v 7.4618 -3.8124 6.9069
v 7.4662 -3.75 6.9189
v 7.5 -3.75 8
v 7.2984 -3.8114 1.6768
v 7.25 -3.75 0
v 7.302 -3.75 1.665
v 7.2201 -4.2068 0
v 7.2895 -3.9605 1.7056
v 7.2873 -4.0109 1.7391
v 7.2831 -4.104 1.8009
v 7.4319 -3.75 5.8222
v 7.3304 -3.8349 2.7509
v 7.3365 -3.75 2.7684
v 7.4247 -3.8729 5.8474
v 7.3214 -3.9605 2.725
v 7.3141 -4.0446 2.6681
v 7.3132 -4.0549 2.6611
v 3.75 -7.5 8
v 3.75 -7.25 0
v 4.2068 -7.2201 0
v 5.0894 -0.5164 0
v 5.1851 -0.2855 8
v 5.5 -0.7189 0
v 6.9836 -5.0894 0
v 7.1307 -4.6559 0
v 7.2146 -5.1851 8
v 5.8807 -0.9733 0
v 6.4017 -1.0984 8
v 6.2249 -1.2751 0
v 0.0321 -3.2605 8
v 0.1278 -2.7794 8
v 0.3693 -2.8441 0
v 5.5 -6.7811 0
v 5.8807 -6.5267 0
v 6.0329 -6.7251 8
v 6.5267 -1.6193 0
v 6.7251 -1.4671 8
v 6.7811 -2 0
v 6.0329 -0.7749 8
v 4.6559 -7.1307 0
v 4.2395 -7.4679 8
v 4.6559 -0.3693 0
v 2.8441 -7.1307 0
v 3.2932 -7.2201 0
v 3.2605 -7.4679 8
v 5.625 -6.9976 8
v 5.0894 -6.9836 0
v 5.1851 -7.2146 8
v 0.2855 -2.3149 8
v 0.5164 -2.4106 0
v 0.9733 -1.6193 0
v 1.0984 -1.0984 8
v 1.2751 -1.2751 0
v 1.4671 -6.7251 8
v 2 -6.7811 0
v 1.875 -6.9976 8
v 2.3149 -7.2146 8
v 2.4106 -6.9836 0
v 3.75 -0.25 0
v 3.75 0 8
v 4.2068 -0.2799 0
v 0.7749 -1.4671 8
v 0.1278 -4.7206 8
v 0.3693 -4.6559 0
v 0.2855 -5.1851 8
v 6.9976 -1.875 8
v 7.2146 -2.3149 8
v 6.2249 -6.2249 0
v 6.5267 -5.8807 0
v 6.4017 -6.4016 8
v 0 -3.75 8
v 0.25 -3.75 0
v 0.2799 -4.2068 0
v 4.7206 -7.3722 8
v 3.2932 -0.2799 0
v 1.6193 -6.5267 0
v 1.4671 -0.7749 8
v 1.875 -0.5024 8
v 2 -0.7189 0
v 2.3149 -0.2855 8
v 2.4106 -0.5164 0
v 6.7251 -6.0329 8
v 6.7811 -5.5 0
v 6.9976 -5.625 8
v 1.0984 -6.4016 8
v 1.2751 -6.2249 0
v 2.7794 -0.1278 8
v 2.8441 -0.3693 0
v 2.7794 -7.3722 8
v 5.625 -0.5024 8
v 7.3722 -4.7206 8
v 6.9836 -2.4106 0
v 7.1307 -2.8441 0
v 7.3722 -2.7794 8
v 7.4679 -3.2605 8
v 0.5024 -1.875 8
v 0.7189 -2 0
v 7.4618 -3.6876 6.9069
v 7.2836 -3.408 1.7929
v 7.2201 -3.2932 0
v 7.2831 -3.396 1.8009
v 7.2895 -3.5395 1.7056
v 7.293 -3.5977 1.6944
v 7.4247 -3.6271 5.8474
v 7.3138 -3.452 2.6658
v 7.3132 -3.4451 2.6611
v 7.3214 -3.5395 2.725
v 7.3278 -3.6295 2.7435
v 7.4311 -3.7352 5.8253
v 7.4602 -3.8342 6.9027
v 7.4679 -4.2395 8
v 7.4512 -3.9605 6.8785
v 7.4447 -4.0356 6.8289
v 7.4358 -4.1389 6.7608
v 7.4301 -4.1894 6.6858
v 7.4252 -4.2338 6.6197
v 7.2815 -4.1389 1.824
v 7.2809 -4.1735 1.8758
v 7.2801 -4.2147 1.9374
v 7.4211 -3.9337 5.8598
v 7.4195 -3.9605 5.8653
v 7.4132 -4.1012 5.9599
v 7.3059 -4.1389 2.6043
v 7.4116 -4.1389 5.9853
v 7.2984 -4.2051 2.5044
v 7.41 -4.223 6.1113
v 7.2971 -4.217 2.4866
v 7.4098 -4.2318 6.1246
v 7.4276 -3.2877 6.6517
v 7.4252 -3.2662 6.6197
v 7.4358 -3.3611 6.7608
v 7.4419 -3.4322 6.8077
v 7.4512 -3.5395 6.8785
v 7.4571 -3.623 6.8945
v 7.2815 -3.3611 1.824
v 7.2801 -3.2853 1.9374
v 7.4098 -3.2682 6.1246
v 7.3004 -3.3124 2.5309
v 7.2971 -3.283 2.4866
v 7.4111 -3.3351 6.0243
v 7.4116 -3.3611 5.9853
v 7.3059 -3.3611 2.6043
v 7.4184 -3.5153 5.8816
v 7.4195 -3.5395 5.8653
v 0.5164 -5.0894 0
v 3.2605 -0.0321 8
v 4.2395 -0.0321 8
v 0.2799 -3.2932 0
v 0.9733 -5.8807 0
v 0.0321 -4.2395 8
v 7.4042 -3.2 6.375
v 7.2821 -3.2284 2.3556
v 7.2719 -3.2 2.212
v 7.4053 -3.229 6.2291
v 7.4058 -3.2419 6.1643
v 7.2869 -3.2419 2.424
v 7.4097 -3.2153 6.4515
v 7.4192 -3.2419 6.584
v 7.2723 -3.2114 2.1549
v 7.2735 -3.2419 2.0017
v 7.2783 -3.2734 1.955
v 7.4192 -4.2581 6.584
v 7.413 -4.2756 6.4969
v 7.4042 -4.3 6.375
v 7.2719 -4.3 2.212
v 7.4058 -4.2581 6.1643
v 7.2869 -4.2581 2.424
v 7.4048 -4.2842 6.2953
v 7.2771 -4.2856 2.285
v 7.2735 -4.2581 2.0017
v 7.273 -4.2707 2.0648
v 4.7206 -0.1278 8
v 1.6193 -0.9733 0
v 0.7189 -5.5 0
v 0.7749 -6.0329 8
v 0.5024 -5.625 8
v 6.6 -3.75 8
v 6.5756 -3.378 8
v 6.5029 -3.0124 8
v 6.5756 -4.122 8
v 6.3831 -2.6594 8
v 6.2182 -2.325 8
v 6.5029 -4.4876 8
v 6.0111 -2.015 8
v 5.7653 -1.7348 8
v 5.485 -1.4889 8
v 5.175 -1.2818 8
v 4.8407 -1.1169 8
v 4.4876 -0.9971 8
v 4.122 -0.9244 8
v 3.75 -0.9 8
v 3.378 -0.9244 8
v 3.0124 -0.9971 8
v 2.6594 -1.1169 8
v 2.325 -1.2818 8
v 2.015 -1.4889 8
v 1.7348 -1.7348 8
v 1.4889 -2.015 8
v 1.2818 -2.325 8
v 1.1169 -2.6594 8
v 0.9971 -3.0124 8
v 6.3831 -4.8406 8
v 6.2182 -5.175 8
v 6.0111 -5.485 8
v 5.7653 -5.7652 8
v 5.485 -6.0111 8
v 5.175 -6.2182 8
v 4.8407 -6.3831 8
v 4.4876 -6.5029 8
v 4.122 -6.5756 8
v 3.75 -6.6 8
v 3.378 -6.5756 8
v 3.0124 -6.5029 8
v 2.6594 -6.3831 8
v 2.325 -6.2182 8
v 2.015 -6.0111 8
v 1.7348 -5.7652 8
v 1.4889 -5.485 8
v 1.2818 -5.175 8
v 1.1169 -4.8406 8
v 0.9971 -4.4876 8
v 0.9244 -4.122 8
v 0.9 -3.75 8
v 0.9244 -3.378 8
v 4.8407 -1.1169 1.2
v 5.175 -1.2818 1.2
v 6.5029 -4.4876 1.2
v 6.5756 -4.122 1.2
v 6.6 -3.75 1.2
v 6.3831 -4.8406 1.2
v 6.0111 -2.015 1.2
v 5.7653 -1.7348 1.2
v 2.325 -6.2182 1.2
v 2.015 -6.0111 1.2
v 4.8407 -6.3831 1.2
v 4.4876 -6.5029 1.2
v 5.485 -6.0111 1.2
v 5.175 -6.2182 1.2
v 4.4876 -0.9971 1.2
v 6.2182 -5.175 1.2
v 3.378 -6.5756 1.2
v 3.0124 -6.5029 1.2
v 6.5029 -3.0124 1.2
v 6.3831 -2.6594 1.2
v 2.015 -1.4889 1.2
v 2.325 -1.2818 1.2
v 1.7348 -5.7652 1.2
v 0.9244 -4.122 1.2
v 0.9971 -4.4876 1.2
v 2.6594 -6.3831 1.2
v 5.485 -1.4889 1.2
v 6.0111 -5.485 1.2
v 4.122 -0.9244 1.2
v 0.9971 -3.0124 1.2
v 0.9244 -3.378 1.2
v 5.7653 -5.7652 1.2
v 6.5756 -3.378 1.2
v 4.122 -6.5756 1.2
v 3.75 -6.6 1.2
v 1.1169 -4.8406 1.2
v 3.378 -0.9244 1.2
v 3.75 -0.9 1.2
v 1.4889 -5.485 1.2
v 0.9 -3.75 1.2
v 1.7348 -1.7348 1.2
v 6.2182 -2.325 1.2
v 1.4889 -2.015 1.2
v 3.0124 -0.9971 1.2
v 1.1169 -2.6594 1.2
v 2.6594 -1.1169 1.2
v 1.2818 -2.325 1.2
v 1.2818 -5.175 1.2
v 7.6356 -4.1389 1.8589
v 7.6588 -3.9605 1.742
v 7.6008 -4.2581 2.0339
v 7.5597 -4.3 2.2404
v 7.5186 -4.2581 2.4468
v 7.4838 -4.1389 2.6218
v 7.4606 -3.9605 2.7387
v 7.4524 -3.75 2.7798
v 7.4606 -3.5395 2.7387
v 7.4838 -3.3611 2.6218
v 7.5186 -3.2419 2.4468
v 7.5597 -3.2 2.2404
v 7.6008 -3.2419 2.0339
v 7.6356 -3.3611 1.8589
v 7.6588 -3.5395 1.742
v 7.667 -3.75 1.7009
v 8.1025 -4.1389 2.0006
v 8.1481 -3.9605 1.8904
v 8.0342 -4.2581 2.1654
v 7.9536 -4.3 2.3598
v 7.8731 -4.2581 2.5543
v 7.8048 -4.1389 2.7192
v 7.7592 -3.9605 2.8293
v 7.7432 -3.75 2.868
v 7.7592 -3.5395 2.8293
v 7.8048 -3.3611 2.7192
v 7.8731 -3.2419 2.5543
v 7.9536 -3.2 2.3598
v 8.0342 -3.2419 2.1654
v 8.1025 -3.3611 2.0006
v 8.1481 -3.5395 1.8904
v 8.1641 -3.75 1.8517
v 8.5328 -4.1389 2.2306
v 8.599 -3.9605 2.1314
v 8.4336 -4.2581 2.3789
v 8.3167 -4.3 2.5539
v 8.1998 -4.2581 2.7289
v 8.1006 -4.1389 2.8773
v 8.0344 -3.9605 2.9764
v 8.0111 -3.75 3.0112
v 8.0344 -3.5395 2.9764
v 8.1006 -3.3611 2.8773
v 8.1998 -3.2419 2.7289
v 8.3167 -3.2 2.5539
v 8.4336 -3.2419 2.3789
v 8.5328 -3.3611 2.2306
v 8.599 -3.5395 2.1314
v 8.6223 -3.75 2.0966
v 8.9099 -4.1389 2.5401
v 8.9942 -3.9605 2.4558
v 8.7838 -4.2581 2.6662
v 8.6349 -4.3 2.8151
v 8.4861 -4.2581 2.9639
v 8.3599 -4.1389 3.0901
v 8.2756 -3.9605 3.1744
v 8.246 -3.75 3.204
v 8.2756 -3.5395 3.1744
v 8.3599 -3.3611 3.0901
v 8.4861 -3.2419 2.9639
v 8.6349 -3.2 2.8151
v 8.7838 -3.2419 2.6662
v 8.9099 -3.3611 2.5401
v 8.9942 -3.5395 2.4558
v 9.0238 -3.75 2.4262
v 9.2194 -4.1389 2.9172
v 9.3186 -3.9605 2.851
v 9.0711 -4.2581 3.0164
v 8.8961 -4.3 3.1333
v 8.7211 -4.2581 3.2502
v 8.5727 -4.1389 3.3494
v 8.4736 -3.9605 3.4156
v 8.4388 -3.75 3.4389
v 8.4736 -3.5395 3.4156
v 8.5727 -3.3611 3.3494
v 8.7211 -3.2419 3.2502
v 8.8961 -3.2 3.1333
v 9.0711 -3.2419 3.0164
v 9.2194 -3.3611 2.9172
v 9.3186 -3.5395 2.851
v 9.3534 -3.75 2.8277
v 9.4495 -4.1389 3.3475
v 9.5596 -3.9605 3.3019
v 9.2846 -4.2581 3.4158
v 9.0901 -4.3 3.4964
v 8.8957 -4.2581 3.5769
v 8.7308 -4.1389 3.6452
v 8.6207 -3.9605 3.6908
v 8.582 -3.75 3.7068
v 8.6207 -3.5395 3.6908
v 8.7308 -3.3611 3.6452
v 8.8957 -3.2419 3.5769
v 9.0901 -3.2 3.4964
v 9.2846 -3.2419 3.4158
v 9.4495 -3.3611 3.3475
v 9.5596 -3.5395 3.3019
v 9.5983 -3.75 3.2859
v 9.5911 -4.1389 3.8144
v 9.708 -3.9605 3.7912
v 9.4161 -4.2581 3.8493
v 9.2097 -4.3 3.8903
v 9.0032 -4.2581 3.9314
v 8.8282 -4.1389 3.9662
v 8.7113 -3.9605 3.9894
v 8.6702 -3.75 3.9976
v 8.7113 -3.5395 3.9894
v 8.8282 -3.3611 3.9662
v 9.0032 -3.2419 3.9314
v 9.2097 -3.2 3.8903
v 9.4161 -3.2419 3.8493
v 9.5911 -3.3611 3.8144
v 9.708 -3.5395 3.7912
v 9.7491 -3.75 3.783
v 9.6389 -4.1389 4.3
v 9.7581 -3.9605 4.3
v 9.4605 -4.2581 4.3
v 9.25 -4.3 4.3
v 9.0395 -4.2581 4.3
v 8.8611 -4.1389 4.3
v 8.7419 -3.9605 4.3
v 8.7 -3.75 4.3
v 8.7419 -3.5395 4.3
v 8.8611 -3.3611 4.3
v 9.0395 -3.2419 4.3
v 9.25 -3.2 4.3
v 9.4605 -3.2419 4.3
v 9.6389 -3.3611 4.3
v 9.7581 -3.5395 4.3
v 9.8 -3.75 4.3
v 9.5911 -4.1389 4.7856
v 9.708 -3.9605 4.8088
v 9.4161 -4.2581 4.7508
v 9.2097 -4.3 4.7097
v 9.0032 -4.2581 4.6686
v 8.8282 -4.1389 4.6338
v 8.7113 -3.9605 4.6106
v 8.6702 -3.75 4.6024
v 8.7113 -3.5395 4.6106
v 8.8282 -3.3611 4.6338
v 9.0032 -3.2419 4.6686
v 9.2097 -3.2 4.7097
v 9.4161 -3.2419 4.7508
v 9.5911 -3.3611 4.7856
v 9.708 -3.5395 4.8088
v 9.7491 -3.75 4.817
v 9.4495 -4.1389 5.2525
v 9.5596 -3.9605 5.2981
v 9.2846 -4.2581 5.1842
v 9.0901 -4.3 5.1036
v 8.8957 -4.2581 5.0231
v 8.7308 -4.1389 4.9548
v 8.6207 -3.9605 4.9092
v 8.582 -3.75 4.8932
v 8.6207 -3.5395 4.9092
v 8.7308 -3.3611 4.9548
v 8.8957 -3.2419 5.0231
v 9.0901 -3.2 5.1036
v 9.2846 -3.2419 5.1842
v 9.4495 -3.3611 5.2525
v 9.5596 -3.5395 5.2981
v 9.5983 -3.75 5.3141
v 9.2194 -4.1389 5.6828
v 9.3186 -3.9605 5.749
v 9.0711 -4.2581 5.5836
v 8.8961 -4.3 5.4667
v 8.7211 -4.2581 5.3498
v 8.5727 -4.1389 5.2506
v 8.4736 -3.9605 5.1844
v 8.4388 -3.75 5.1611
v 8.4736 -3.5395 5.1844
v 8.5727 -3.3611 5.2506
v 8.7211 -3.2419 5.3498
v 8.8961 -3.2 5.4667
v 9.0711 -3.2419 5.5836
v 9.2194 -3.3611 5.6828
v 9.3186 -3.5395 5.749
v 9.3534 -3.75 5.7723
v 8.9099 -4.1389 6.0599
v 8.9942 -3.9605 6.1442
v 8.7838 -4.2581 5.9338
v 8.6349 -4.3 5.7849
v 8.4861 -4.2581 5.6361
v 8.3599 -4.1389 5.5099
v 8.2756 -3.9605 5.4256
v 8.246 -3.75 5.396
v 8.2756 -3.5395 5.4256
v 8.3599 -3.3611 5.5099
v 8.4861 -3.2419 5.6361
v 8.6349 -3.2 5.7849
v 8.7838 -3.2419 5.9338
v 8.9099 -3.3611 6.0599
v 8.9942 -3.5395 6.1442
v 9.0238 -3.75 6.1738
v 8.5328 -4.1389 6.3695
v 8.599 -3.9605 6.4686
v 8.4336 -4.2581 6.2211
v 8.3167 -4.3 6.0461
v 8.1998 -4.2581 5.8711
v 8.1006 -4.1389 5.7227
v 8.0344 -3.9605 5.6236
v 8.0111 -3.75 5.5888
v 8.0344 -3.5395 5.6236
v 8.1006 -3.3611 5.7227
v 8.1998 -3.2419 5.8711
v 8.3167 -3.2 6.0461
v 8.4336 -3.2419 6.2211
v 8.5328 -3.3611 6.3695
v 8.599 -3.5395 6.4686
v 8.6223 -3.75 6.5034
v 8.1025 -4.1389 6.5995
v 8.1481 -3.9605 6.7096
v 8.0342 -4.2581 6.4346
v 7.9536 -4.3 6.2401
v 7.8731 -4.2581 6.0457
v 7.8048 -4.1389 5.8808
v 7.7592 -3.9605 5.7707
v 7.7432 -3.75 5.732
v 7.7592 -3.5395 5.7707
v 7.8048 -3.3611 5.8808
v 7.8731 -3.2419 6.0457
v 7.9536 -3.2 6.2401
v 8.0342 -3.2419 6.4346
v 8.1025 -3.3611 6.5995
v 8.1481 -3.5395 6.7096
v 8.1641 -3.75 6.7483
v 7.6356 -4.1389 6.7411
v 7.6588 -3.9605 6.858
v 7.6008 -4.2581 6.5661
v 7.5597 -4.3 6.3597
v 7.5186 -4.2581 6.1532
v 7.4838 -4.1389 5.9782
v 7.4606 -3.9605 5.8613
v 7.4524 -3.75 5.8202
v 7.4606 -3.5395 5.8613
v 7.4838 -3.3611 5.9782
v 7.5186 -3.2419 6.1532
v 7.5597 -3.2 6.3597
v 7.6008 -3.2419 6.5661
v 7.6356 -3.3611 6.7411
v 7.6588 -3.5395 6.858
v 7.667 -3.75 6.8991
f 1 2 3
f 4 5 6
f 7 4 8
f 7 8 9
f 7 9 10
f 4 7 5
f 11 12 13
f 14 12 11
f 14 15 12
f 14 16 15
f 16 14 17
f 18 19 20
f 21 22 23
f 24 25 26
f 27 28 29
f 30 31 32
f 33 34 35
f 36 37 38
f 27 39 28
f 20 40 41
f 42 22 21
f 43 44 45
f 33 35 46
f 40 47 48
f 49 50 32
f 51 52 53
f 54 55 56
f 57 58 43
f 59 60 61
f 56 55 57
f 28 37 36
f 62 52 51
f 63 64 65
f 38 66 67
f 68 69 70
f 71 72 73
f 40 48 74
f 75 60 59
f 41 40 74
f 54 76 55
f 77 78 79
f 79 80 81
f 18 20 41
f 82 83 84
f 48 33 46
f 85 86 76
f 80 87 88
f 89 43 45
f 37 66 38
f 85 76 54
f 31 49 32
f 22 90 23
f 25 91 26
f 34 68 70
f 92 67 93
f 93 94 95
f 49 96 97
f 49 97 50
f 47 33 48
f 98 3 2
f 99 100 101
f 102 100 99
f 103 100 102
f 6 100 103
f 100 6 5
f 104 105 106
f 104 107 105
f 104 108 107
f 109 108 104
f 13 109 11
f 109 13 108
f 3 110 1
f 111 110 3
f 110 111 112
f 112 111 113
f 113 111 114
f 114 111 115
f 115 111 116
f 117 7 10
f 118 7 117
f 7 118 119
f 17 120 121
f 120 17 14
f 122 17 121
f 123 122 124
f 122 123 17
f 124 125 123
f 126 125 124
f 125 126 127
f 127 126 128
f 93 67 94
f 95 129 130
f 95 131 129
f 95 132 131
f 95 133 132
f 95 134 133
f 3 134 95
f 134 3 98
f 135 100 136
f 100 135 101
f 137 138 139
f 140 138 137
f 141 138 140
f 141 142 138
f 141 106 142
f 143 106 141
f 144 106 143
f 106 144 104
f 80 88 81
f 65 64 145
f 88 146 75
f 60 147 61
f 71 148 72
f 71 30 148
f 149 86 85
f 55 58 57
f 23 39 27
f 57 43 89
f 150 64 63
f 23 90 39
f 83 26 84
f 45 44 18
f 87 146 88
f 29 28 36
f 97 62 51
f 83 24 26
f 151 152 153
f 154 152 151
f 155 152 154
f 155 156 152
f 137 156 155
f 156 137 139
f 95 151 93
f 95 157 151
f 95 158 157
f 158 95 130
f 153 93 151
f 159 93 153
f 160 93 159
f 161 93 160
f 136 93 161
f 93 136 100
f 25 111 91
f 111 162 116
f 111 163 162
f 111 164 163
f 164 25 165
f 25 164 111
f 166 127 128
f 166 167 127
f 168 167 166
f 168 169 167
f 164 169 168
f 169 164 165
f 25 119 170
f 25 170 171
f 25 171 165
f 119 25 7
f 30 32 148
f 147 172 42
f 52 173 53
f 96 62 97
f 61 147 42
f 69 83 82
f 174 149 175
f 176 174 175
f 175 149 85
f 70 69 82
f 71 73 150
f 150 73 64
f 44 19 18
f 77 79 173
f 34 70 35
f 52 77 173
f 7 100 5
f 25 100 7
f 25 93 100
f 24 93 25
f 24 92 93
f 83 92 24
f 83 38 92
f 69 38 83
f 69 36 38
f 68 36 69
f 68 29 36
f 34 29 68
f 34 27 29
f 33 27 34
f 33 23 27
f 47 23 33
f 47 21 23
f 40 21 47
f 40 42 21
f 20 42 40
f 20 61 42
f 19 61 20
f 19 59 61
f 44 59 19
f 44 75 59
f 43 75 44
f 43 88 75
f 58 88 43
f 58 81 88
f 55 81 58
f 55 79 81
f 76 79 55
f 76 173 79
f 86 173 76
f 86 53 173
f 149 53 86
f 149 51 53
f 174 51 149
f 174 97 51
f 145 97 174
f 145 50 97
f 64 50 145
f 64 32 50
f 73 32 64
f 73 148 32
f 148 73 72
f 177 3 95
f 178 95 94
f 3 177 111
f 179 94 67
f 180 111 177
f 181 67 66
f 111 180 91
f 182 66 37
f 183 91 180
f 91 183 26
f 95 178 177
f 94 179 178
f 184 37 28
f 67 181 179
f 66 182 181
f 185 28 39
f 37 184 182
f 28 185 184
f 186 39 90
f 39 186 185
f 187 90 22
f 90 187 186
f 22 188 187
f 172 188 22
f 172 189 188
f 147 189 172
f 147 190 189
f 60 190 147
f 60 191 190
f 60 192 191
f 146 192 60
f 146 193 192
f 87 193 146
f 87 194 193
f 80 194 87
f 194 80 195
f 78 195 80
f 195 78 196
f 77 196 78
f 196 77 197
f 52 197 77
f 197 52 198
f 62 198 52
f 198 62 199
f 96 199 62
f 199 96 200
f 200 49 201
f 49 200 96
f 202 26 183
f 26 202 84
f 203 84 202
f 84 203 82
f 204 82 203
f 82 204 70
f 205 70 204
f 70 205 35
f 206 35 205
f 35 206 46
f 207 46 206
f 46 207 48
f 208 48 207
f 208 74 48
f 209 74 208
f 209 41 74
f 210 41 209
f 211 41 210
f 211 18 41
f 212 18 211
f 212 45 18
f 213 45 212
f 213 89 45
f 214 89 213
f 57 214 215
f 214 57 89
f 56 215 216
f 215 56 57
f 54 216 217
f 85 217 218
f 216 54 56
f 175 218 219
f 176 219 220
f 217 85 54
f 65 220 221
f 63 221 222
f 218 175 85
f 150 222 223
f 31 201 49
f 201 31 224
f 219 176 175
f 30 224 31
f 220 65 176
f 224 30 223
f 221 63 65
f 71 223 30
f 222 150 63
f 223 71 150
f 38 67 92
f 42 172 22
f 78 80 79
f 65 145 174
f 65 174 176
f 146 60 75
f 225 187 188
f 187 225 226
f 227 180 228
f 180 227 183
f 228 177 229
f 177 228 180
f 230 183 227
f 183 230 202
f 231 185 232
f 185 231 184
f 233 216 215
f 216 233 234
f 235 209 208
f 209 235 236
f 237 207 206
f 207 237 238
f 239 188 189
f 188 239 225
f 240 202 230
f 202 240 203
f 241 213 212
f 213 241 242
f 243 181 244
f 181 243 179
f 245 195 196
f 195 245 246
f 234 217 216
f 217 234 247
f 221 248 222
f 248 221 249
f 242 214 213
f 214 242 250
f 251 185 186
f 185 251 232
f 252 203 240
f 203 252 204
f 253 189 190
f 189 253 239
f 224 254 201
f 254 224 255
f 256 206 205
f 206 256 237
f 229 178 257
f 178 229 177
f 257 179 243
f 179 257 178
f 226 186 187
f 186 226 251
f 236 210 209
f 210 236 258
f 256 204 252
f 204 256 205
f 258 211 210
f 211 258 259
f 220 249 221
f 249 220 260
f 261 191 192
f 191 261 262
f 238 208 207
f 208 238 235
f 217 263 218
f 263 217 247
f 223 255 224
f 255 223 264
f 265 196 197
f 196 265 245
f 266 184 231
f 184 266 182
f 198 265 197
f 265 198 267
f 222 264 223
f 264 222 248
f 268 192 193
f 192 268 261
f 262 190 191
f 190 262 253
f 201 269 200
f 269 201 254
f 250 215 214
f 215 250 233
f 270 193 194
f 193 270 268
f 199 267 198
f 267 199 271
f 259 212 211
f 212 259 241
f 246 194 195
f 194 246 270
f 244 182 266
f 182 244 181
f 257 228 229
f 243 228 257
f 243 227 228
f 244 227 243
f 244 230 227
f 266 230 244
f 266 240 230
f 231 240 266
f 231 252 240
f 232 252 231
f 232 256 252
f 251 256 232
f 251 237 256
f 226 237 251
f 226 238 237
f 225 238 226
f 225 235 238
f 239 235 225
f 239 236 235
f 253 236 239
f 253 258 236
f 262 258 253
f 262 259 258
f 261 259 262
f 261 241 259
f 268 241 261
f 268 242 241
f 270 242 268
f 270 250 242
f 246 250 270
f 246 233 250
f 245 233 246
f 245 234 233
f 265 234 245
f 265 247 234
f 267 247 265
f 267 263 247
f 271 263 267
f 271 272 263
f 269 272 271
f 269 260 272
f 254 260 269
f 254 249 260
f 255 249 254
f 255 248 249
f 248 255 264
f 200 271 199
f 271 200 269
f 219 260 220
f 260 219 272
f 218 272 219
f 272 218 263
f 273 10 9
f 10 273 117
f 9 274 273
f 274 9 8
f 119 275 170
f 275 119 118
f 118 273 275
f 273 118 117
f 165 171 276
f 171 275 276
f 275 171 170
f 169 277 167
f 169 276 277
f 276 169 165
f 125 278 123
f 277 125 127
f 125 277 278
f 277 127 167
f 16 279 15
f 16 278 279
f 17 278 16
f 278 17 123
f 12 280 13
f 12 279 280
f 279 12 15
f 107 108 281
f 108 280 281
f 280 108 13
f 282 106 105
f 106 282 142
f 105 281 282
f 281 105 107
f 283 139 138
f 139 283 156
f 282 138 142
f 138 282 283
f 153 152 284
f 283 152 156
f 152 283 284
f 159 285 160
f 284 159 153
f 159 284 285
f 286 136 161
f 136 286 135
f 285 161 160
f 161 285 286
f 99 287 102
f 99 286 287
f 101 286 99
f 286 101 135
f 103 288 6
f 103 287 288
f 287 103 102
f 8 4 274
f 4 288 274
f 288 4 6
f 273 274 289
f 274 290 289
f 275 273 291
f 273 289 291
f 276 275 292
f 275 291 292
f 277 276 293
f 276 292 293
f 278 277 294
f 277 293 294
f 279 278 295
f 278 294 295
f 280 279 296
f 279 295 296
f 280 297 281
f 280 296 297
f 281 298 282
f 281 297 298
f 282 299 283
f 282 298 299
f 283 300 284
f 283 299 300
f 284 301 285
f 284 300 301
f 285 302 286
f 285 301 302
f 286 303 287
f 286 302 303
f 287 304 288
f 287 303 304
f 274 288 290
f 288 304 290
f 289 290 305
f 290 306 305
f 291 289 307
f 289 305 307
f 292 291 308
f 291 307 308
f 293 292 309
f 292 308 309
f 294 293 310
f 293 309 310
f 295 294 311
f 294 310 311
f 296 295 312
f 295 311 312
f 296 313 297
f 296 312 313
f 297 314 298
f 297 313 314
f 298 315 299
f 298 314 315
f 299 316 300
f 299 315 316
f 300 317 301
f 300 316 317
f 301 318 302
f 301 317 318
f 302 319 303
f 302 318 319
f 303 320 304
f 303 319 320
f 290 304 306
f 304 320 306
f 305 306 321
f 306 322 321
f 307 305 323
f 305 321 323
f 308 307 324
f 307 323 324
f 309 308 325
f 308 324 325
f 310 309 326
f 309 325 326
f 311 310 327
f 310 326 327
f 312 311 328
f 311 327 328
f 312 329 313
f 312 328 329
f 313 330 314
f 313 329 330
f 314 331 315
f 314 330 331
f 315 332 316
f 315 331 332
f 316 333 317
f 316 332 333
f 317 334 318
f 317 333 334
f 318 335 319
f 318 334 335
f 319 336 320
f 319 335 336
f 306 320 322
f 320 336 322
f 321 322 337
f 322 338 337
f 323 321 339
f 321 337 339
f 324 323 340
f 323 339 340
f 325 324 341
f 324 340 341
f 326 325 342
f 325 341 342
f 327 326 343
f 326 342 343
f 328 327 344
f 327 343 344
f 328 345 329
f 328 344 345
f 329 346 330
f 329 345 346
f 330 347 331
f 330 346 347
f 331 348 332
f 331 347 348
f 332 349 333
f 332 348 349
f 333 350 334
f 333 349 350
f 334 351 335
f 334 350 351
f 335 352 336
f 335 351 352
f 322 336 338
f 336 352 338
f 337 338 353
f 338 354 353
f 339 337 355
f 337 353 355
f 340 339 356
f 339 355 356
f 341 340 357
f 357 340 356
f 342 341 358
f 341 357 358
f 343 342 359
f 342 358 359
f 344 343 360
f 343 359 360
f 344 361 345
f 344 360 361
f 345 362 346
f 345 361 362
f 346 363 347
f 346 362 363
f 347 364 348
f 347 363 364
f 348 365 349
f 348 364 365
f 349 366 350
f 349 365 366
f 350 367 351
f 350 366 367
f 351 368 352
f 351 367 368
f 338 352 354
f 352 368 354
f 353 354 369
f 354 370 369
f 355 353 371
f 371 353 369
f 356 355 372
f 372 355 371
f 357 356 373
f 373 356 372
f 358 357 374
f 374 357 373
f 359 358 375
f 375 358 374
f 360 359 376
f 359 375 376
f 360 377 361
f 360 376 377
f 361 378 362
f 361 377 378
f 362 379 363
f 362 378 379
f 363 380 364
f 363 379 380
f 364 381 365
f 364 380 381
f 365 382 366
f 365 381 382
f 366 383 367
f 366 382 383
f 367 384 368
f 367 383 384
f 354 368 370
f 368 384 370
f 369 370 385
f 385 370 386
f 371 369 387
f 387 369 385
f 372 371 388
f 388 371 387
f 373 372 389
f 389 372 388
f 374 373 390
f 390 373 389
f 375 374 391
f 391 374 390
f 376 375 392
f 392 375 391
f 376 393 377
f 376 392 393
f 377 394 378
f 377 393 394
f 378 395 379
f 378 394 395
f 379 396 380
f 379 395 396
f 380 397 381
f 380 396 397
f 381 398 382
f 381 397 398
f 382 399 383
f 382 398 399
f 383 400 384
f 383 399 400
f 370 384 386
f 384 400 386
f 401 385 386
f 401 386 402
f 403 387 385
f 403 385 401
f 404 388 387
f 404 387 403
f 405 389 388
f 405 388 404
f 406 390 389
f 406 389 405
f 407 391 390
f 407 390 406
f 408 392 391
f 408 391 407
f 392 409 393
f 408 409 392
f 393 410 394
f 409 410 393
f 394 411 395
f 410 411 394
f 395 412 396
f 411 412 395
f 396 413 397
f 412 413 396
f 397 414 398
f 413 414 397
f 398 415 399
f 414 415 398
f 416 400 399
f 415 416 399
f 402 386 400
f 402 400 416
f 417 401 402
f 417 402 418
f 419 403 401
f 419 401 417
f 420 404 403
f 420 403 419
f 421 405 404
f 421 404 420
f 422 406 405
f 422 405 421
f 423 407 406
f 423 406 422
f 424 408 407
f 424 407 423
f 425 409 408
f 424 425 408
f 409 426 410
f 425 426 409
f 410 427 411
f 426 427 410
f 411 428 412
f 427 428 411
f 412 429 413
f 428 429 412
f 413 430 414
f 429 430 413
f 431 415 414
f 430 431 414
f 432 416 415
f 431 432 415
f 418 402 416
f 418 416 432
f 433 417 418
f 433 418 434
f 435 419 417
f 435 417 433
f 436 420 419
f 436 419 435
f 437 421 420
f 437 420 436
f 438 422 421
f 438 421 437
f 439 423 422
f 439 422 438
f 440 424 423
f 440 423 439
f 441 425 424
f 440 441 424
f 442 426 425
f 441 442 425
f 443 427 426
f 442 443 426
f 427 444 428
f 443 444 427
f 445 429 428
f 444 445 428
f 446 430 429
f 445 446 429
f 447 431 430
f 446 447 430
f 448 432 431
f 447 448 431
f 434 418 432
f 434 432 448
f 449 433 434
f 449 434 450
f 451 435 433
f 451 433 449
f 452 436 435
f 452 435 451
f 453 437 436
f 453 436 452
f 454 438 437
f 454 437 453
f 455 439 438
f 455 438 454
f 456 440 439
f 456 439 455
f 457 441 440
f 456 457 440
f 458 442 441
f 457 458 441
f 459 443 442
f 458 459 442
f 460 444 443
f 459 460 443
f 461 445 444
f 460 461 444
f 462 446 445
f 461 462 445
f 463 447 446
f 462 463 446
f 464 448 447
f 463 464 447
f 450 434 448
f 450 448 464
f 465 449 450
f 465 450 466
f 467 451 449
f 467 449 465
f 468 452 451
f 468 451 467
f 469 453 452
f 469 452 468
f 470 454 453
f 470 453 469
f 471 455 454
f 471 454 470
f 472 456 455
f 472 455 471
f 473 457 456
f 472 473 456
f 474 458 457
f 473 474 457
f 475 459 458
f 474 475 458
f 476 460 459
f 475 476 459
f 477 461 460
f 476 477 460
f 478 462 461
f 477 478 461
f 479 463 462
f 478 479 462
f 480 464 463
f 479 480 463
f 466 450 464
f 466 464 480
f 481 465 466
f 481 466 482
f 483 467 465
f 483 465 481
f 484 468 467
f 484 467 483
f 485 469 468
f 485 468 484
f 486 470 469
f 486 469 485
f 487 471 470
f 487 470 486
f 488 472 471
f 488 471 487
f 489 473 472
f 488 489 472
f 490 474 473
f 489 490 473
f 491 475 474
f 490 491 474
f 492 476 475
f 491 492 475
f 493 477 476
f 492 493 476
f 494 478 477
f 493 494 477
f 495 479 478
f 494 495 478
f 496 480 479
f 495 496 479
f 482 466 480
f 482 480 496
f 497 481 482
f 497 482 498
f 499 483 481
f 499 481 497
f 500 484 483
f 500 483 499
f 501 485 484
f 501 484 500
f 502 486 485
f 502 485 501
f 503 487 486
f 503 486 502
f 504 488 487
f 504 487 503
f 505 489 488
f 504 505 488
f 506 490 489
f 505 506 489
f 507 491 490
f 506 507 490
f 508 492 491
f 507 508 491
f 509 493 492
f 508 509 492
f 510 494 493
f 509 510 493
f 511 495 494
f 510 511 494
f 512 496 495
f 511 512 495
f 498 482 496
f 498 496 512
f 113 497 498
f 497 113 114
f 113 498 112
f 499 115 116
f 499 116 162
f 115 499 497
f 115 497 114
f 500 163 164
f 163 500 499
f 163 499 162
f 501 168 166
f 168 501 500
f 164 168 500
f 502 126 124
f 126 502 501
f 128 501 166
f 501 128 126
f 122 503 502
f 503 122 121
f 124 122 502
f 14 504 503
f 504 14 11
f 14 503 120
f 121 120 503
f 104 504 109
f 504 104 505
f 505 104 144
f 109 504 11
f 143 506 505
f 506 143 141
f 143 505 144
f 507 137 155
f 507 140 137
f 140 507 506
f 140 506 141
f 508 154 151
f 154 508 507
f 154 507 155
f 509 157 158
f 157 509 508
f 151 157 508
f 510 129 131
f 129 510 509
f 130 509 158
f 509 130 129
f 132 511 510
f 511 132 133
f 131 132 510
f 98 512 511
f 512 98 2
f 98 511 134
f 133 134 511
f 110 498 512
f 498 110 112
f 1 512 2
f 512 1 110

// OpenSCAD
// Mug.stl  -  Store Versile room frame (Rev C)
// Quantity: 2   Filament: White (e.g. PLA Basic Jade White / Matte Ivory White)
// Print: layer 0.12 mm, infill 100%, 2 walls, brim 0 mm, NO supports
// Orientation: flat  (as installed)
// Notes: Print 2 (one is turned so the handles face outward).
// The library draws parts with their front toward +Y; mirror([0,1,0]) makes the real
// part face the viewer correctly (see build.py). Edit dimensions in versile_parts.scad.
use <../versile_parts.scad>

mirror([0, 1, 0]) mug();
